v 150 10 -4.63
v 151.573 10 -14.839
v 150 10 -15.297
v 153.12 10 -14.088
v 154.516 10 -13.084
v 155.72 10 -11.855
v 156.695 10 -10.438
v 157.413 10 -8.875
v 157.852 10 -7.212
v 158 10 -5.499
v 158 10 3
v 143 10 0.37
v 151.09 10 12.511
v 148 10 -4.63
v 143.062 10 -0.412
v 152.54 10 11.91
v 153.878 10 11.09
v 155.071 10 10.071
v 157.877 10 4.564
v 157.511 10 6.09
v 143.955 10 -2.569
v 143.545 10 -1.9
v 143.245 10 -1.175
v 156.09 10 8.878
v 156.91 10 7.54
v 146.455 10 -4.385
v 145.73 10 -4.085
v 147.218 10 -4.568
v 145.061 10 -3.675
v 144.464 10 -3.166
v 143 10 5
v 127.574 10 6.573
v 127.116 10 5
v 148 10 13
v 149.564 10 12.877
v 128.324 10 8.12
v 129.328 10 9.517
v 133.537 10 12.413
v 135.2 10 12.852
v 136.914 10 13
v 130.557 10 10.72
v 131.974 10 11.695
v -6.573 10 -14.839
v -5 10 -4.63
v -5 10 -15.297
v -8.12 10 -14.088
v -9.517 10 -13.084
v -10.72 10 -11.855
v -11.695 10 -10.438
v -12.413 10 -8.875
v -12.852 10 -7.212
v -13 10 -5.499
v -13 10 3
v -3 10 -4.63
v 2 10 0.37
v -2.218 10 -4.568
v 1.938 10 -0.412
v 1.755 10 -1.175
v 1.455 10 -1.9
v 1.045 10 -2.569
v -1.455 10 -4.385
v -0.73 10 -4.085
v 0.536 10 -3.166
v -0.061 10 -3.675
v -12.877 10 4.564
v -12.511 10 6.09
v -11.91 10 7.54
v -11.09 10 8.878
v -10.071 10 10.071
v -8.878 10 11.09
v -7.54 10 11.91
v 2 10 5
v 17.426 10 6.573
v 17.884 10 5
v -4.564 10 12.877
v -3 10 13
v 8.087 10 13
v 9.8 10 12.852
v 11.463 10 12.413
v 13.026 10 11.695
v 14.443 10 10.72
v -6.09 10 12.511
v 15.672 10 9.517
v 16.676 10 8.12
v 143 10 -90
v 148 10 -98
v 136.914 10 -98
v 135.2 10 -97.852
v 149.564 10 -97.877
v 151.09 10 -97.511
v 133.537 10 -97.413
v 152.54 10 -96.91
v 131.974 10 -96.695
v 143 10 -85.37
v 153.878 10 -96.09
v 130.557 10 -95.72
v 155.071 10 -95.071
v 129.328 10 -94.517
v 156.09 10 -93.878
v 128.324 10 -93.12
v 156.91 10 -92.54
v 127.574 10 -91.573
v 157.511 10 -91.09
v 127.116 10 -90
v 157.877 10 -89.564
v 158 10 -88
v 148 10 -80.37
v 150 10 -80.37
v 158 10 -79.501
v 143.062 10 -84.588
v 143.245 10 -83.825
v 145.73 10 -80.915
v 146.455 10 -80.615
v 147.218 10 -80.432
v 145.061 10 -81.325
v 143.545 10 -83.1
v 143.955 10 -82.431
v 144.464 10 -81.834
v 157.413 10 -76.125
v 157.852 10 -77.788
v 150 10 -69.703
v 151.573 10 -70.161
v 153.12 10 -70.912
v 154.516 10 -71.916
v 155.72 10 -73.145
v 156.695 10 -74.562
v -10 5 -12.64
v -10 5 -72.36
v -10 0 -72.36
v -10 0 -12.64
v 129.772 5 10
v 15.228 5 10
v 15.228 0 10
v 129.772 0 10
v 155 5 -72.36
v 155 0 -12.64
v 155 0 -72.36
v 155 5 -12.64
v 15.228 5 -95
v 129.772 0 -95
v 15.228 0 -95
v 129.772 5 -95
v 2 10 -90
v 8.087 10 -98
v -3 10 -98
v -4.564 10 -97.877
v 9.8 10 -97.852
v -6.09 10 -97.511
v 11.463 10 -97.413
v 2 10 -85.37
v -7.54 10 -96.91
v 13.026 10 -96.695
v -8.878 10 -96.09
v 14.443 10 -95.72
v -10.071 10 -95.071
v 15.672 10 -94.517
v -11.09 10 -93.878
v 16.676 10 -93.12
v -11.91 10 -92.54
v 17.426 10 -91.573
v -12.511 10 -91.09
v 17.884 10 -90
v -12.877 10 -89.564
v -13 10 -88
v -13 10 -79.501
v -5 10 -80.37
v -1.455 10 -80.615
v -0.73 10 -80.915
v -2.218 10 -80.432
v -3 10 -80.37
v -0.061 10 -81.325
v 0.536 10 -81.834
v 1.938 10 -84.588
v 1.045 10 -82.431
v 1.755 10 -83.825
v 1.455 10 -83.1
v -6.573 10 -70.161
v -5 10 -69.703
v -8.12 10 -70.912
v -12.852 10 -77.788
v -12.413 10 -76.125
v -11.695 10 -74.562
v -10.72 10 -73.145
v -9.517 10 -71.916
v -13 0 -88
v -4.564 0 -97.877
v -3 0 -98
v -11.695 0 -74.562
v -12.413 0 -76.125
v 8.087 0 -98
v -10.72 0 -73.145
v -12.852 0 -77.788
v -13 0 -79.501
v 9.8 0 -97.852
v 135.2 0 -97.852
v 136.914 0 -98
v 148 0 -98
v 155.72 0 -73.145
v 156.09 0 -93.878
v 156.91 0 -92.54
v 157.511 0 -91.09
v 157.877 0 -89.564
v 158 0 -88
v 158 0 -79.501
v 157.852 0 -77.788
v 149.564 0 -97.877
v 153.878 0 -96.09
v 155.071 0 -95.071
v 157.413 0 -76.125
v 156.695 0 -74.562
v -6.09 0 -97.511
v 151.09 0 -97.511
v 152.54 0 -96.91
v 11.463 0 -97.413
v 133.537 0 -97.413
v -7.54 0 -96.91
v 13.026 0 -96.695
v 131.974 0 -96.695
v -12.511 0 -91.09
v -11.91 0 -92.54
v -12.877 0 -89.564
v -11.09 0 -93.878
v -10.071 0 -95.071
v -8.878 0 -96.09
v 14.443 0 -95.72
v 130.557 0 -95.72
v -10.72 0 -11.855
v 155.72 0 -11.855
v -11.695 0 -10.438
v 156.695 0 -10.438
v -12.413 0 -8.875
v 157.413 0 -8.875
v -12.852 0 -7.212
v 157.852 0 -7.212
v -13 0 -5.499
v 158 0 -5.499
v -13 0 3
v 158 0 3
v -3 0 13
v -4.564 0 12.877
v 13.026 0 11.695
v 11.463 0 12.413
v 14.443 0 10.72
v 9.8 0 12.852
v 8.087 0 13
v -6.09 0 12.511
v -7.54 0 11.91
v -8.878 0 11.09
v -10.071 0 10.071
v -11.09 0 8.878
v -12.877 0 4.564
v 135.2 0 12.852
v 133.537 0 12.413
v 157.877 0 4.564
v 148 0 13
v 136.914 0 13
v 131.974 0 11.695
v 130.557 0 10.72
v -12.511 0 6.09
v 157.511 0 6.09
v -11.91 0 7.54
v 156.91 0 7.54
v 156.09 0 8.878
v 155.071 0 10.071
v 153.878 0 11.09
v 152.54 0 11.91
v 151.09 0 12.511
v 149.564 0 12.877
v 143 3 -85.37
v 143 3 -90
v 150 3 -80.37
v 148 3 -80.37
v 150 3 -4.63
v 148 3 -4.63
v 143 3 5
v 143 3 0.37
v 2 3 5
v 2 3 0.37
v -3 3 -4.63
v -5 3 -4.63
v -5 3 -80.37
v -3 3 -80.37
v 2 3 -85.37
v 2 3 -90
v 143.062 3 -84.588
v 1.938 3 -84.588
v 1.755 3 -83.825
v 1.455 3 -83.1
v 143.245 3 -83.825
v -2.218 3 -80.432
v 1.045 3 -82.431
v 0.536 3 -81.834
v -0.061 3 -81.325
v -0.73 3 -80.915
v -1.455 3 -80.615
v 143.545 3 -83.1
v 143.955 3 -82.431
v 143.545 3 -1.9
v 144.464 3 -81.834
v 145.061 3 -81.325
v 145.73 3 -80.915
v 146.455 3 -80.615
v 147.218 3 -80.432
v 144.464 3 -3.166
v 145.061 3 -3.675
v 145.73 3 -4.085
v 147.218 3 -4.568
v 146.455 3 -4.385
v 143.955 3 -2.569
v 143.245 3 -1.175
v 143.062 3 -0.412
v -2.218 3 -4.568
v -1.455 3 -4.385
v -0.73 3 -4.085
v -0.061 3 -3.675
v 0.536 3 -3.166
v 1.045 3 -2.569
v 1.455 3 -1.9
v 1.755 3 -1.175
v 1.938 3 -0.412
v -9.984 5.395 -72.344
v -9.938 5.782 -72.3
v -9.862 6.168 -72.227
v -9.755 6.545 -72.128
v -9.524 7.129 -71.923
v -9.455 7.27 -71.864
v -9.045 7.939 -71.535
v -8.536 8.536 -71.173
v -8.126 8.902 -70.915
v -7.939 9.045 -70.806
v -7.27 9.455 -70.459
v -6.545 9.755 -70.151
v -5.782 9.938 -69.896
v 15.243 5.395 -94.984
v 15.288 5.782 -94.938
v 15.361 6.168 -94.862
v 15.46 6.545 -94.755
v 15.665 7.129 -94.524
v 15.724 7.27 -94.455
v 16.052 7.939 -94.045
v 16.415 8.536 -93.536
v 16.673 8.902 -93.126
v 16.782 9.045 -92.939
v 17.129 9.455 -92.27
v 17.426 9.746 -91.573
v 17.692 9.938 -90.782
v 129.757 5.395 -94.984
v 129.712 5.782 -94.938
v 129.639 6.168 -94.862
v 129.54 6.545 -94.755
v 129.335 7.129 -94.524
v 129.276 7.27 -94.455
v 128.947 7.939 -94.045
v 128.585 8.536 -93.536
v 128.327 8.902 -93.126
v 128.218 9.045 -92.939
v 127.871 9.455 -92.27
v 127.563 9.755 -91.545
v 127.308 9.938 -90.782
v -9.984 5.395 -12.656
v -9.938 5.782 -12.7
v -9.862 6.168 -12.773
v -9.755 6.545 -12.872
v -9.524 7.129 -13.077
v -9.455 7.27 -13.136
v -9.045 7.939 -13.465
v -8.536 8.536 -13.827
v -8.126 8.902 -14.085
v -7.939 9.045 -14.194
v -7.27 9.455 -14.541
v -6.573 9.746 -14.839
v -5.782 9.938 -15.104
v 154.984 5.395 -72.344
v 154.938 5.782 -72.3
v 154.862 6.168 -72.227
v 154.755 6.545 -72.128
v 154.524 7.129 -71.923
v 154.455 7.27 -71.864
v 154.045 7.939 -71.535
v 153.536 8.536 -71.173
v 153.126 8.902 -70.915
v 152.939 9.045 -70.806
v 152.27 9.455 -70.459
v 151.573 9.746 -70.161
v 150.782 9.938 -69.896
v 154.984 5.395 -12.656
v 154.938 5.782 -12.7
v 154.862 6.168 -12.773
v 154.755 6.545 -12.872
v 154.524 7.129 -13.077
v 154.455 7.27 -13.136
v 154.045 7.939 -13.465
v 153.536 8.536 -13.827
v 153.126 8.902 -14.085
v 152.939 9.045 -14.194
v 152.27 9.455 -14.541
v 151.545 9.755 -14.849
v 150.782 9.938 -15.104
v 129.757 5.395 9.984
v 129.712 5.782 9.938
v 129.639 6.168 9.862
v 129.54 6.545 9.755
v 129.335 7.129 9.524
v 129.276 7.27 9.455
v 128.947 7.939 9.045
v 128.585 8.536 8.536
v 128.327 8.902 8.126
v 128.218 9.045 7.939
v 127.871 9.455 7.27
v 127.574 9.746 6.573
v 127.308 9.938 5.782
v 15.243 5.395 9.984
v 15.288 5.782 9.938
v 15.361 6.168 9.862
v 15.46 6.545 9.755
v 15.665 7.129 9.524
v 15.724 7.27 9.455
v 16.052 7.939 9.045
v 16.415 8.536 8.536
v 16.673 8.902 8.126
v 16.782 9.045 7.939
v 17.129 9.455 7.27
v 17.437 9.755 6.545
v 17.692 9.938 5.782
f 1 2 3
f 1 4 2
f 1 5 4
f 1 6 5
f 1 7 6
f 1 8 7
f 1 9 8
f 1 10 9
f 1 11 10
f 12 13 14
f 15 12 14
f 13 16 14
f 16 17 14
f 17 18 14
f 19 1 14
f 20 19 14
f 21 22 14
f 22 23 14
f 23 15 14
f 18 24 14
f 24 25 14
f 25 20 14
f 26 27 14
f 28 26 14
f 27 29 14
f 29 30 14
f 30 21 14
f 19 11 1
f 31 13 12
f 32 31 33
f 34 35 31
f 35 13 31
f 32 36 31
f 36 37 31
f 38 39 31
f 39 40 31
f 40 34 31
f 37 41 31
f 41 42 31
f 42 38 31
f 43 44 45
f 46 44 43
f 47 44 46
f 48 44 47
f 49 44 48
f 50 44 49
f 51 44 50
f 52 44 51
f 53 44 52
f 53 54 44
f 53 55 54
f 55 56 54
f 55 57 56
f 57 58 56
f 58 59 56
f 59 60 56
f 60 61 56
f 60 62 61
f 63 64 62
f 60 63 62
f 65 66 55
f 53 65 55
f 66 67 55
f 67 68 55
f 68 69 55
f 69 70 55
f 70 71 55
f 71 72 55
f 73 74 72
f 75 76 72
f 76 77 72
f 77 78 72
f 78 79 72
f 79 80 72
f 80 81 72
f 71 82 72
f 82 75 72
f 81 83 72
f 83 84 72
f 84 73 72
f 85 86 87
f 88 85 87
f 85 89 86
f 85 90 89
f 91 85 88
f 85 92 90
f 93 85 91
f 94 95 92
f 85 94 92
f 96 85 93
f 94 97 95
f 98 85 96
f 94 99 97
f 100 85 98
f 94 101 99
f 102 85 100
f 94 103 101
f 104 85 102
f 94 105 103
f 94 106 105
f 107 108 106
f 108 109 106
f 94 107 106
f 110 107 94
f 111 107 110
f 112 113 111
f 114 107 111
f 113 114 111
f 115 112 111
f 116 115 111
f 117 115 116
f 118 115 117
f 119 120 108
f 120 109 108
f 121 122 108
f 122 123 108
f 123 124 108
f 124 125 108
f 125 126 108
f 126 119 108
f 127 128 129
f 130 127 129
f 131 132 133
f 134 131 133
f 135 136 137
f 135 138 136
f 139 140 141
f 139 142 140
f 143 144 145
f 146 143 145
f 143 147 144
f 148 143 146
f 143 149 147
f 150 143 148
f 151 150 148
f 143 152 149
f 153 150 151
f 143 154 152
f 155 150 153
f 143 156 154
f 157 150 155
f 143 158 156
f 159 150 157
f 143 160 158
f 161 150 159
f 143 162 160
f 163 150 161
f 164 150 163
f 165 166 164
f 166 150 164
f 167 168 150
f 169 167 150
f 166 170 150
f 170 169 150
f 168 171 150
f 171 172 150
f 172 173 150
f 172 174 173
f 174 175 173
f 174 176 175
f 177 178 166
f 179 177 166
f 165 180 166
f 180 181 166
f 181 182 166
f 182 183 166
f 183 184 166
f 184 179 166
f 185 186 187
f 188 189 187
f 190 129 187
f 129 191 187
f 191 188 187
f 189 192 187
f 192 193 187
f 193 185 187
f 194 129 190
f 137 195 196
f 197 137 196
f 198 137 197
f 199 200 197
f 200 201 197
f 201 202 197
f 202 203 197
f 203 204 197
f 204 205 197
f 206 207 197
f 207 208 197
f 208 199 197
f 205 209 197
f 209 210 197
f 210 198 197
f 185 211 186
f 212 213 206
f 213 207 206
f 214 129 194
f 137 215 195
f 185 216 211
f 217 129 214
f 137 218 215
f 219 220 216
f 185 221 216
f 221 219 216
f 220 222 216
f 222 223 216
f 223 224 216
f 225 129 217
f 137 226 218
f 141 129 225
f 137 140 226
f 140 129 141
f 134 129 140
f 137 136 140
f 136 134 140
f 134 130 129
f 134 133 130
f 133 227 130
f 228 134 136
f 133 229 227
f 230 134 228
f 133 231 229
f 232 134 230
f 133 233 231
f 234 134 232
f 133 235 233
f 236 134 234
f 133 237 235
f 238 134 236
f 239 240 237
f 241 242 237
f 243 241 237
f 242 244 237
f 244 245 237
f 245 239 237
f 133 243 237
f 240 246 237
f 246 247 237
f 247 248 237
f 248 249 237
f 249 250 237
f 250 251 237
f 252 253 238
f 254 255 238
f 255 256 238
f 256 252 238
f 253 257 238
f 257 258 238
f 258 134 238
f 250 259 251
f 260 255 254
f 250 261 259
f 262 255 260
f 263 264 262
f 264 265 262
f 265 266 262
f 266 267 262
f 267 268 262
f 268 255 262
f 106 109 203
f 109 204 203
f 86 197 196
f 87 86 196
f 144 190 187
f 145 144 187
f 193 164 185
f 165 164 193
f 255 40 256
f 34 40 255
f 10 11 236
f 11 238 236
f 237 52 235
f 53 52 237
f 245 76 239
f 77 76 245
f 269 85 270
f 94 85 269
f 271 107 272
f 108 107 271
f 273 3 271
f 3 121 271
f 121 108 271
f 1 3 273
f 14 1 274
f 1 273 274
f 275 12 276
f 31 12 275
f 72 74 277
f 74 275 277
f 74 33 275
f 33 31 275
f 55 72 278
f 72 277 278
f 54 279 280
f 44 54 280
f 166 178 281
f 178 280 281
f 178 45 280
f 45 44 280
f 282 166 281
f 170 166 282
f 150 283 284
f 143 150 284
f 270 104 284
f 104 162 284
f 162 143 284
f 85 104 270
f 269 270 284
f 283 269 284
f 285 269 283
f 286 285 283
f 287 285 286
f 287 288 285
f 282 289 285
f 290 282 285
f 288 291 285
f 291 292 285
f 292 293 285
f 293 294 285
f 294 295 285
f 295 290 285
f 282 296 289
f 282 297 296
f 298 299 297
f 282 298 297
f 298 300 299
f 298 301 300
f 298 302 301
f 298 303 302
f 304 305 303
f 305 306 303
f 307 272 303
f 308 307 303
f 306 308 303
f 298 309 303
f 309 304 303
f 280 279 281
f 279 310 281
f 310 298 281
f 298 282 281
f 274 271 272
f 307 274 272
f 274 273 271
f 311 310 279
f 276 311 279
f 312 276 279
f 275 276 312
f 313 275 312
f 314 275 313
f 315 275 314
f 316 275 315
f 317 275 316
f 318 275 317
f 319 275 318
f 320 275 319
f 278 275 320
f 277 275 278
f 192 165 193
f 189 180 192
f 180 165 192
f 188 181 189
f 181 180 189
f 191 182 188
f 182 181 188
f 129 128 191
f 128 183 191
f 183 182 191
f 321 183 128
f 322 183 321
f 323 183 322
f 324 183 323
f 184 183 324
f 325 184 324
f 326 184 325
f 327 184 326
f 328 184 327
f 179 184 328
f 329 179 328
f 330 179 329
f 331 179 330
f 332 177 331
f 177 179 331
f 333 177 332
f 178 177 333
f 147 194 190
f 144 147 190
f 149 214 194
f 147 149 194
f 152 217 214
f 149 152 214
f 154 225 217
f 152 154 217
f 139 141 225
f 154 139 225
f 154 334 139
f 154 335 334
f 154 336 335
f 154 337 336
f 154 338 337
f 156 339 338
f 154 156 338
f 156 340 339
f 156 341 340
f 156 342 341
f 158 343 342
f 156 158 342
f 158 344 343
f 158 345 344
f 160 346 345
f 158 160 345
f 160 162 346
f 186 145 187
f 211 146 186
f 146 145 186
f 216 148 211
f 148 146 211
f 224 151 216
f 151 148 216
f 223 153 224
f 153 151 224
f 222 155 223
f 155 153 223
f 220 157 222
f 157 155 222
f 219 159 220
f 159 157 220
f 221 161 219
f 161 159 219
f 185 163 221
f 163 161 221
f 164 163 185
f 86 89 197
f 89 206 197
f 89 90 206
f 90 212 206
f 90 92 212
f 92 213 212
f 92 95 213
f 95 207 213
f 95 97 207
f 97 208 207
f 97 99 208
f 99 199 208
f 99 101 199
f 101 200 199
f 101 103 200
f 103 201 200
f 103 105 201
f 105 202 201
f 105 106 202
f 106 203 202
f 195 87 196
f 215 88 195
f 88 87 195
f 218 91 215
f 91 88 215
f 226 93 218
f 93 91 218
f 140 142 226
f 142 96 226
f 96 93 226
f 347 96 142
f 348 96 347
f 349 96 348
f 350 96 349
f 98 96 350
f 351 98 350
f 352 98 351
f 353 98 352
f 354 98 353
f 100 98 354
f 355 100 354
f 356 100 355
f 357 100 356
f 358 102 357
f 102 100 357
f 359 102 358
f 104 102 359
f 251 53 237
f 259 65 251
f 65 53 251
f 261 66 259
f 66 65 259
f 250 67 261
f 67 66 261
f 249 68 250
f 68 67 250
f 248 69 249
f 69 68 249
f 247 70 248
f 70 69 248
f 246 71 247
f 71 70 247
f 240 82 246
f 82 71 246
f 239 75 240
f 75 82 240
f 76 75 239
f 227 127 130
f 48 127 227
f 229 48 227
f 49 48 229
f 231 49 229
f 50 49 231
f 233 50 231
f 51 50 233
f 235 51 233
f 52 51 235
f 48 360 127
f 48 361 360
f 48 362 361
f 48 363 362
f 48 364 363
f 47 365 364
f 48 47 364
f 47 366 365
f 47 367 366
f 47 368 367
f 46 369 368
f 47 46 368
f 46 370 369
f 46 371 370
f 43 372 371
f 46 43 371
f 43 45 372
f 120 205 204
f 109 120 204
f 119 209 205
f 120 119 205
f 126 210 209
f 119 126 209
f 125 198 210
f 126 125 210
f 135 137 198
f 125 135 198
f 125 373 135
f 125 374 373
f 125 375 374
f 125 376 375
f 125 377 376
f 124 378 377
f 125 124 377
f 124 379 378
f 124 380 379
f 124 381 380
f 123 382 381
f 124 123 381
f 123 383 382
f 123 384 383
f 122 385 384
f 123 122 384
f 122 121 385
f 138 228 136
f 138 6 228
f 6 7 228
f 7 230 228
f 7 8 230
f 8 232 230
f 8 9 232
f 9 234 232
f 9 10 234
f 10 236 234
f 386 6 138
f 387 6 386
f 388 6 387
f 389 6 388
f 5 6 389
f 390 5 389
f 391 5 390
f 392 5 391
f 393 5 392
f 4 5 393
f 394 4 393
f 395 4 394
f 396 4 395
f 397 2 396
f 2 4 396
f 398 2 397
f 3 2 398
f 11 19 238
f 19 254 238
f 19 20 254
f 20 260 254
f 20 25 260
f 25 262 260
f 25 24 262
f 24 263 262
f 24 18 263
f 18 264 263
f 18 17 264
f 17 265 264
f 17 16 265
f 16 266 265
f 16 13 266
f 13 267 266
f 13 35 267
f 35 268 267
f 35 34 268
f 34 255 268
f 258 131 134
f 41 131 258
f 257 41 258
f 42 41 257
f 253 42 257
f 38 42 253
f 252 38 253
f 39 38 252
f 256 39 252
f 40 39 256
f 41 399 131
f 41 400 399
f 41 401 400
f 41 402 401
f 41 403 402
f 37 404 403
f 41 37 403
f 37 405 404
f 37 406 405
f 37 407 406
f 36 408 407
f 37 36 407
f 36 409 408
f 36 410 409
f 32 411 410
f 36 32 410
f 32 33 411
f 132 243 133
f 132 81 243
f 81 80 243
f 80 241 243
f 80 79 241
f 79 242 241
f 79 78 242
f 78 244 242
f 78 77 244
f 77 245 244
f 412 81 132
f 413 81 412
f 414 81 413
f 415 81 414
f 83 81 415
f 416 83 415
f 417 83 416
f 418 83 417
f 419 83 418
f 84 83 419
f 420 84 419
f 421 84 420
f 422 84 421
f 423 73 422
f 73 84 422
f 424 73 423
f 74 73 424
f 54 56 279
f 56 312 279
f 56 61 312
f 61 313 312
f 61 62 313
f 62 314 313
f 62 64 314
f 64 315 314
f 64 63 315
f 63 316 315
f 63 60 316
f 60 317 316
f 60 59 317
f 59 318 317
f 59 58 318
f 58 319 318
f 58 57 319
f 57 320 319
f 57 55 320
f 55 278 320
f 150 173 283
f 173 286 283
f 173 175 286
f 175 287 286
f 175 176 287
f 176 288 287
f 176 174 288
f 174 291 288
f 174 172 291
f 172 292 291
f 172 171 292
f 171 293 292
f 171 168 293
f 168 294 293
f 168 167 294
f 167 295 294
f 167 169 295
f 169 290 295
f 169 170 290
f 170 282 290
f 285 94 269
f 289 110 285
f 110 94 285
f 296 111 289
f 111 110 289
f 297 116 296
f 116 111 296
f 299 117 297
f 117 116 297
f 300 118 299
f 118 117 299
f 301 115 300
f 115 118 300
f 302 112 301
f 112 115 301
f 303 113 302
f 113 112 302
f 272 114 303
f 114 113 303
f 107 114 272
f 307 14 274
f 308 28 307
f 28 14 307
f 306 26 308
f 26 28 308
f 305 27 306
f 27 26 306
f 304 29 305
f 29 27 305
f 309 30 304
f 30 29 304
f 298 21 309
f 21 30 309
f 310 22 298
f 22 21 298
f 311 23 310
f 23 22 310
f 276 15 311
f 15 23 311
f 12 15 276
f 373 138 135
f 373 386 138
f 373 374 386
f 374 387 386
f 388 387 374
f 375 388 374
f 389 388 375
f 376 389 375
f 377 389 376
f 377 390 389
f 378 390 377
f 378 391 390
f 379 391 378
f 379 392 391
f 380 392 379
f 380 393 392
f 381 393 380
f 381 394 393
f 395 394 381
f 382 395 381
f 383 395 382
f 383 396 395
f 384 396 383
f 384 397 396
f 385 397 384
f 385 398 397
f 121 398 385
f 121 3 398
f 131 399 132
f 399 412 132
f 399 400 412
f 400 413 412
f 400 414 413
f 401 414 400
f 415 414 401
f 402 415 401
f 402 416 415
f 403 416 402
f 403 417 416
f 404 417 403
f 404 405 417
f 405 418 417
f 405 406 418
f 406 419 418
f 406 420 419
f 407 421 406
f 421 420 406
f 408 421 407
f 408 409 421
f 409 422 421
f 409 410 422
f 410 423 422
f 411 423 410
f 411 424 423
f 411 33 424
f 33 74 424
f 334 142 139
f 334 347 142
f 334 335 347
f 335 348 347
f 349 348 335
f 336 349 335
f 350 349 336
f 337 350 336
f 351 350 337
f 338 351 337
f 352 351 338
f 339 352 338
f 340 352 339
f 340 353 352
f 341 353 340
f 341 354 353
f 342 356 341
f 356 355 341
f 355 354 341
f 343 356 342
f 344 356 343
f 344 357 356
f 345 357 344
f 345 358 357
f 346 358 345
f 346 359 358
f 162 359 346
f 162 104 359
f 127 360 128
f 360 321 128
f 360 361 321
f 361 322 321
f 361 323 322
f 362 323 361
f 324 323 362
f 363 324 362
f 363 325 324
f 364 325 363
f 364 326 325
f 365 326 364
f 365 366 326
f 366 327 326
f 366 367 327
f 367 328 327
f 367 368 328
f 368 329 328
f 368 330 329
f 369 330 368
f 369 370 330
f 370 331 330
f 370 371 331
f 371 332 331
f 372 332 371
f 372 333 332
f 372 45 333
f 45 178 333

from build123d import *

# Parameters (mm, degrees)
SKETCH7_W           = 165
SKETCH7_H           = 105
SKETCH7_W_2         = 145
SKETCH7_H_2         = 85
BOSS_EXTRUDE7_DEPTH = 10
SKETCH8_W           = 28.227937213
SKETCH8_H           = 25.640206581
BOSS_EXTRUDE8_DEPTH = 10
CUT_EXTRUDE4_DEPTH  = 7
FILLET2_R           = 10
FILLET3_R           = 5
FILLET6_R           = 5


# Some blends are built 0.0001 mm under size
with BuildPart() as part:
    # Sketch7 → Boss-Extrude7 (new body)
    # profile 1 of 2: a face of its own
    with BuildSketch(Plane(origin=(0, 0, 0), x_dir=(1, 0, 0), z_dir=(0, 1, 0))):
        with Locations((72.5, 42.5)):
            Rectangle(SKETCH7_W, SKETCH7_H)
        with Locations((72.5, 42.5)):
            Rectangle(SKETCH7_W_2, SKETCH7_H_2, mode=Mode.SUBTRACT)
    # profile 2 of 2: a face of its own
    with BuildSketch(Plane(origin=(0, 0, 0), x_dir=(1, 0, 0), z_dir=(0, 1, 0))):
        with Locations((72.5, 42.5)):
            Rectangle(SKETCH7_W_2, SKETCH7_H_2)
    extrude(amount=BOSS_EXTRUDE7_DEPTH)

    # Sketch8 → Boss-Extrude8 (add)
    with BuildSketch(Plane(origin=(0, 10, 0), x_dir=(1, 0, 0), z_dir=(0, 1, 0))):
        with Locations((1.113968607, -0.179896709)):
            Rectangle(SKETCH8_W, SKETCH8_H)
        with Locations((143.886031393, -0.179896709)):
            Rectangle(SKETCH8_W, SKETCH8_H)
        with Locations((143.886031393, 85.179896709)):
            Rectangle(SKETCH8_W, SKETCH8_H)
        with Locations((1.113968607, 85.179896709)):
            Rectangle(SKETCH8_W, SKETCH8_H)
    extrude(amount=-BOSS_EXTRUDE8_DEPTH)

    # Sketch10 → Cut-Extrude4 (cut)
    with BuildSketch(Plane(origin=(0, 10, 0), x_dir=(1, 0, 0), z_dir=(0, 1, 0))):
        Polygon((2, -5), (143, -5), (143, 4.63003775), (150, 4.63003775), (150, 80.36996225), (143, 80.36996225), (143, 90), (2, 90), (2, 80.36996225), (-5, 80.36996225), (-5, 4.63003775), (2, 4.63003775), align=None)
    extrude(amount=-CUT_EXTRUDE4_DEPTH, mode=Mode.SUBTRACT)

    # Fillet2
    # the kernel refuses this fillet: 10 mm, written as the material it takes off along each edge
    with BuildSketch(Plane(origin=(-13, 27.853571071, -72.359793419), x_dir=(1, 0, 0), z_dir=(0, -1, 0)), Plane(origin=(129.772062787, 27.853571071, -98), x_dir=(0, 0, 1), z_dir=(0, -1, 0)), Plane(origin=(158, 27.853571071, -12.640206581), x_dir=(-1, 0, 0), z_dir=(0, -1, 0)), Plane(origin=(15.227937213, 27.853571071, 13), x_dir=(0, 0, -1), z_dir=(0, -1, 0))) as fillet2_piece_1:
        with BuildLine():
            CenterArc((10, -7.141428429), FILLET2_R, 134.427004001, 45.572995999)
            Line((0, -7.141428429), (-0.2, -7.141428429))
            Line((-0.2, -7.141428429), (-0.2, 0))
            Line((-0.2, 0), (0, 0.2))
            ThreePointArc((0, 0.2), (1.5, 0.2), (2.86, 0.142828569))
            Line((2.86, 0.142828569), (3, 0))
        make_face()
    extrude(amount=45.707142143, mode=Mode.SUBTRACT)
    with BuildSketch(Plane(origin=(15.227937213, 27.853571071, -98), x_dir=(-1, 0, 0), z_dir=(0, -1, 0)), Plane(origin=(-13, 27.853571071, -12.640206581), x_dir=(0, 0, 1), z_dir=(0, -1, 0)), Plane(origin=(158, 27.853571071, -72.359793419), x_dir=(0, 0, -1), z_dir=(0, -1, 0)), Plane(origin=(129.772062787, 27.853571071, 13), x_dir=(1, 0, 0), z_dir=(0, -1, 0))) as fillet2_piece_2:
        with BuildLine():
            CenterArc((7.141428429, -10), FILLET2_R, 90, 45.572995999)
            Line((0, -3), (-0.142828569, -2.86))
            ThreePointArc((-0.142828569, -2.86), (-0.2, -1.5), (-0.2, 0))
            Line((-0.2, 0), (0, 0.2))
            Line((0, 0.2), (7.141428429, 0.2))
            Line((7.141428429, 0.2), (7.141428429, 0))
        make_face()
    extrude(amount=45.707142143, mode=Mode.SUBTRACT)
    with BuildSketch(Plane(origin=(-13, 35, -98), x_dir=(0, 0, 1), z_dir=(0, -1, 0)), Plane(origin=(158, 35, -98), x_dir=(-1, 0, 0), z_dir=(0, -1, 0)), Plane(origin=(158, 35, 13), x_dir=(0, 0, -1), z_dir=(0, -1, 0))) as fillet2_piece_3:
        with BuildLine():
            CenterArc((FILLET2_R, -FILLET2_R), FILLET2_R, 90, 90)
            Line((0, -FILLET2_R), (-FILLET2_R * 0.02, -FILLET2_R))
            Line((-FILLET2_R * 0.02, -FILLET2_R), (-FILLET2_R * 0.02, FILLET2_R * 0.02))
            Line((-FILLET2_R * 0.02, FILLET2_R * 0.02), (FILLET2_R, FILLET2_R * 0.02))
            Line((FILLET2_R, FILLET2_R * 0.02), (FILLET2_R, 0))
        make_face()
    extrude(amount=60, mode=Mode.SUBTRACT)
    with BuildSketch(Plane(origin=(-13, 35, 13), x_dir=(0, 0, -1), z_dir=(0, -1, 0))) as fillet2_piece_4:
        with BuildLine():
            CenterArc((FILLET2_R, FILLET2_R), FILLET2_R, 180, 90)
            Line((0, FILLET2_R), (-FILLET2_R * 0.02, FILLET2_R))
            Line((-FILLET2_R * 0.02, FILLET2_R), (-FILLET2_R * 0.02, -FILLET2_R * 0.02))
            Line((-FILLET2_R * 0.02, -FILLET2_R * 0.02), (FILLET2_R, -FILLET2_R * 0.02))
            Line((FILLET2_R, -FILLET2_R * 0.02), (FILLET2_R, 0))
        make_face()
    extrude(amount=60, mode=Mode.SUBTRACT)

    # Fillet3
    fillet3_edges = [part.edges().sort_by_distance(p)[0] for p in [
        (143, 6.5, -80.36996225),
        (143, 6.5, -4.63003775),
        (2, 6.5, -4.63003775),
        (2, 6.5, -80.36996225),
    ]]
    fillet(fillet3_edges, radius=FILLET3_R)

    # Fillet6
    fillet6_edges = [part.edges().sort_by_distance(p)[0] for p in [
        (72.5, 10, -95),
        (155, 10, -42.5),
        (72.5, 10, 10),
        (-10, 10, -42.5),
    ]]
    fillet(fillet6_edges, radius=FILLET6_R - 0.0001)  # a hair under: the kernel refuses the full size


solid = part.part
